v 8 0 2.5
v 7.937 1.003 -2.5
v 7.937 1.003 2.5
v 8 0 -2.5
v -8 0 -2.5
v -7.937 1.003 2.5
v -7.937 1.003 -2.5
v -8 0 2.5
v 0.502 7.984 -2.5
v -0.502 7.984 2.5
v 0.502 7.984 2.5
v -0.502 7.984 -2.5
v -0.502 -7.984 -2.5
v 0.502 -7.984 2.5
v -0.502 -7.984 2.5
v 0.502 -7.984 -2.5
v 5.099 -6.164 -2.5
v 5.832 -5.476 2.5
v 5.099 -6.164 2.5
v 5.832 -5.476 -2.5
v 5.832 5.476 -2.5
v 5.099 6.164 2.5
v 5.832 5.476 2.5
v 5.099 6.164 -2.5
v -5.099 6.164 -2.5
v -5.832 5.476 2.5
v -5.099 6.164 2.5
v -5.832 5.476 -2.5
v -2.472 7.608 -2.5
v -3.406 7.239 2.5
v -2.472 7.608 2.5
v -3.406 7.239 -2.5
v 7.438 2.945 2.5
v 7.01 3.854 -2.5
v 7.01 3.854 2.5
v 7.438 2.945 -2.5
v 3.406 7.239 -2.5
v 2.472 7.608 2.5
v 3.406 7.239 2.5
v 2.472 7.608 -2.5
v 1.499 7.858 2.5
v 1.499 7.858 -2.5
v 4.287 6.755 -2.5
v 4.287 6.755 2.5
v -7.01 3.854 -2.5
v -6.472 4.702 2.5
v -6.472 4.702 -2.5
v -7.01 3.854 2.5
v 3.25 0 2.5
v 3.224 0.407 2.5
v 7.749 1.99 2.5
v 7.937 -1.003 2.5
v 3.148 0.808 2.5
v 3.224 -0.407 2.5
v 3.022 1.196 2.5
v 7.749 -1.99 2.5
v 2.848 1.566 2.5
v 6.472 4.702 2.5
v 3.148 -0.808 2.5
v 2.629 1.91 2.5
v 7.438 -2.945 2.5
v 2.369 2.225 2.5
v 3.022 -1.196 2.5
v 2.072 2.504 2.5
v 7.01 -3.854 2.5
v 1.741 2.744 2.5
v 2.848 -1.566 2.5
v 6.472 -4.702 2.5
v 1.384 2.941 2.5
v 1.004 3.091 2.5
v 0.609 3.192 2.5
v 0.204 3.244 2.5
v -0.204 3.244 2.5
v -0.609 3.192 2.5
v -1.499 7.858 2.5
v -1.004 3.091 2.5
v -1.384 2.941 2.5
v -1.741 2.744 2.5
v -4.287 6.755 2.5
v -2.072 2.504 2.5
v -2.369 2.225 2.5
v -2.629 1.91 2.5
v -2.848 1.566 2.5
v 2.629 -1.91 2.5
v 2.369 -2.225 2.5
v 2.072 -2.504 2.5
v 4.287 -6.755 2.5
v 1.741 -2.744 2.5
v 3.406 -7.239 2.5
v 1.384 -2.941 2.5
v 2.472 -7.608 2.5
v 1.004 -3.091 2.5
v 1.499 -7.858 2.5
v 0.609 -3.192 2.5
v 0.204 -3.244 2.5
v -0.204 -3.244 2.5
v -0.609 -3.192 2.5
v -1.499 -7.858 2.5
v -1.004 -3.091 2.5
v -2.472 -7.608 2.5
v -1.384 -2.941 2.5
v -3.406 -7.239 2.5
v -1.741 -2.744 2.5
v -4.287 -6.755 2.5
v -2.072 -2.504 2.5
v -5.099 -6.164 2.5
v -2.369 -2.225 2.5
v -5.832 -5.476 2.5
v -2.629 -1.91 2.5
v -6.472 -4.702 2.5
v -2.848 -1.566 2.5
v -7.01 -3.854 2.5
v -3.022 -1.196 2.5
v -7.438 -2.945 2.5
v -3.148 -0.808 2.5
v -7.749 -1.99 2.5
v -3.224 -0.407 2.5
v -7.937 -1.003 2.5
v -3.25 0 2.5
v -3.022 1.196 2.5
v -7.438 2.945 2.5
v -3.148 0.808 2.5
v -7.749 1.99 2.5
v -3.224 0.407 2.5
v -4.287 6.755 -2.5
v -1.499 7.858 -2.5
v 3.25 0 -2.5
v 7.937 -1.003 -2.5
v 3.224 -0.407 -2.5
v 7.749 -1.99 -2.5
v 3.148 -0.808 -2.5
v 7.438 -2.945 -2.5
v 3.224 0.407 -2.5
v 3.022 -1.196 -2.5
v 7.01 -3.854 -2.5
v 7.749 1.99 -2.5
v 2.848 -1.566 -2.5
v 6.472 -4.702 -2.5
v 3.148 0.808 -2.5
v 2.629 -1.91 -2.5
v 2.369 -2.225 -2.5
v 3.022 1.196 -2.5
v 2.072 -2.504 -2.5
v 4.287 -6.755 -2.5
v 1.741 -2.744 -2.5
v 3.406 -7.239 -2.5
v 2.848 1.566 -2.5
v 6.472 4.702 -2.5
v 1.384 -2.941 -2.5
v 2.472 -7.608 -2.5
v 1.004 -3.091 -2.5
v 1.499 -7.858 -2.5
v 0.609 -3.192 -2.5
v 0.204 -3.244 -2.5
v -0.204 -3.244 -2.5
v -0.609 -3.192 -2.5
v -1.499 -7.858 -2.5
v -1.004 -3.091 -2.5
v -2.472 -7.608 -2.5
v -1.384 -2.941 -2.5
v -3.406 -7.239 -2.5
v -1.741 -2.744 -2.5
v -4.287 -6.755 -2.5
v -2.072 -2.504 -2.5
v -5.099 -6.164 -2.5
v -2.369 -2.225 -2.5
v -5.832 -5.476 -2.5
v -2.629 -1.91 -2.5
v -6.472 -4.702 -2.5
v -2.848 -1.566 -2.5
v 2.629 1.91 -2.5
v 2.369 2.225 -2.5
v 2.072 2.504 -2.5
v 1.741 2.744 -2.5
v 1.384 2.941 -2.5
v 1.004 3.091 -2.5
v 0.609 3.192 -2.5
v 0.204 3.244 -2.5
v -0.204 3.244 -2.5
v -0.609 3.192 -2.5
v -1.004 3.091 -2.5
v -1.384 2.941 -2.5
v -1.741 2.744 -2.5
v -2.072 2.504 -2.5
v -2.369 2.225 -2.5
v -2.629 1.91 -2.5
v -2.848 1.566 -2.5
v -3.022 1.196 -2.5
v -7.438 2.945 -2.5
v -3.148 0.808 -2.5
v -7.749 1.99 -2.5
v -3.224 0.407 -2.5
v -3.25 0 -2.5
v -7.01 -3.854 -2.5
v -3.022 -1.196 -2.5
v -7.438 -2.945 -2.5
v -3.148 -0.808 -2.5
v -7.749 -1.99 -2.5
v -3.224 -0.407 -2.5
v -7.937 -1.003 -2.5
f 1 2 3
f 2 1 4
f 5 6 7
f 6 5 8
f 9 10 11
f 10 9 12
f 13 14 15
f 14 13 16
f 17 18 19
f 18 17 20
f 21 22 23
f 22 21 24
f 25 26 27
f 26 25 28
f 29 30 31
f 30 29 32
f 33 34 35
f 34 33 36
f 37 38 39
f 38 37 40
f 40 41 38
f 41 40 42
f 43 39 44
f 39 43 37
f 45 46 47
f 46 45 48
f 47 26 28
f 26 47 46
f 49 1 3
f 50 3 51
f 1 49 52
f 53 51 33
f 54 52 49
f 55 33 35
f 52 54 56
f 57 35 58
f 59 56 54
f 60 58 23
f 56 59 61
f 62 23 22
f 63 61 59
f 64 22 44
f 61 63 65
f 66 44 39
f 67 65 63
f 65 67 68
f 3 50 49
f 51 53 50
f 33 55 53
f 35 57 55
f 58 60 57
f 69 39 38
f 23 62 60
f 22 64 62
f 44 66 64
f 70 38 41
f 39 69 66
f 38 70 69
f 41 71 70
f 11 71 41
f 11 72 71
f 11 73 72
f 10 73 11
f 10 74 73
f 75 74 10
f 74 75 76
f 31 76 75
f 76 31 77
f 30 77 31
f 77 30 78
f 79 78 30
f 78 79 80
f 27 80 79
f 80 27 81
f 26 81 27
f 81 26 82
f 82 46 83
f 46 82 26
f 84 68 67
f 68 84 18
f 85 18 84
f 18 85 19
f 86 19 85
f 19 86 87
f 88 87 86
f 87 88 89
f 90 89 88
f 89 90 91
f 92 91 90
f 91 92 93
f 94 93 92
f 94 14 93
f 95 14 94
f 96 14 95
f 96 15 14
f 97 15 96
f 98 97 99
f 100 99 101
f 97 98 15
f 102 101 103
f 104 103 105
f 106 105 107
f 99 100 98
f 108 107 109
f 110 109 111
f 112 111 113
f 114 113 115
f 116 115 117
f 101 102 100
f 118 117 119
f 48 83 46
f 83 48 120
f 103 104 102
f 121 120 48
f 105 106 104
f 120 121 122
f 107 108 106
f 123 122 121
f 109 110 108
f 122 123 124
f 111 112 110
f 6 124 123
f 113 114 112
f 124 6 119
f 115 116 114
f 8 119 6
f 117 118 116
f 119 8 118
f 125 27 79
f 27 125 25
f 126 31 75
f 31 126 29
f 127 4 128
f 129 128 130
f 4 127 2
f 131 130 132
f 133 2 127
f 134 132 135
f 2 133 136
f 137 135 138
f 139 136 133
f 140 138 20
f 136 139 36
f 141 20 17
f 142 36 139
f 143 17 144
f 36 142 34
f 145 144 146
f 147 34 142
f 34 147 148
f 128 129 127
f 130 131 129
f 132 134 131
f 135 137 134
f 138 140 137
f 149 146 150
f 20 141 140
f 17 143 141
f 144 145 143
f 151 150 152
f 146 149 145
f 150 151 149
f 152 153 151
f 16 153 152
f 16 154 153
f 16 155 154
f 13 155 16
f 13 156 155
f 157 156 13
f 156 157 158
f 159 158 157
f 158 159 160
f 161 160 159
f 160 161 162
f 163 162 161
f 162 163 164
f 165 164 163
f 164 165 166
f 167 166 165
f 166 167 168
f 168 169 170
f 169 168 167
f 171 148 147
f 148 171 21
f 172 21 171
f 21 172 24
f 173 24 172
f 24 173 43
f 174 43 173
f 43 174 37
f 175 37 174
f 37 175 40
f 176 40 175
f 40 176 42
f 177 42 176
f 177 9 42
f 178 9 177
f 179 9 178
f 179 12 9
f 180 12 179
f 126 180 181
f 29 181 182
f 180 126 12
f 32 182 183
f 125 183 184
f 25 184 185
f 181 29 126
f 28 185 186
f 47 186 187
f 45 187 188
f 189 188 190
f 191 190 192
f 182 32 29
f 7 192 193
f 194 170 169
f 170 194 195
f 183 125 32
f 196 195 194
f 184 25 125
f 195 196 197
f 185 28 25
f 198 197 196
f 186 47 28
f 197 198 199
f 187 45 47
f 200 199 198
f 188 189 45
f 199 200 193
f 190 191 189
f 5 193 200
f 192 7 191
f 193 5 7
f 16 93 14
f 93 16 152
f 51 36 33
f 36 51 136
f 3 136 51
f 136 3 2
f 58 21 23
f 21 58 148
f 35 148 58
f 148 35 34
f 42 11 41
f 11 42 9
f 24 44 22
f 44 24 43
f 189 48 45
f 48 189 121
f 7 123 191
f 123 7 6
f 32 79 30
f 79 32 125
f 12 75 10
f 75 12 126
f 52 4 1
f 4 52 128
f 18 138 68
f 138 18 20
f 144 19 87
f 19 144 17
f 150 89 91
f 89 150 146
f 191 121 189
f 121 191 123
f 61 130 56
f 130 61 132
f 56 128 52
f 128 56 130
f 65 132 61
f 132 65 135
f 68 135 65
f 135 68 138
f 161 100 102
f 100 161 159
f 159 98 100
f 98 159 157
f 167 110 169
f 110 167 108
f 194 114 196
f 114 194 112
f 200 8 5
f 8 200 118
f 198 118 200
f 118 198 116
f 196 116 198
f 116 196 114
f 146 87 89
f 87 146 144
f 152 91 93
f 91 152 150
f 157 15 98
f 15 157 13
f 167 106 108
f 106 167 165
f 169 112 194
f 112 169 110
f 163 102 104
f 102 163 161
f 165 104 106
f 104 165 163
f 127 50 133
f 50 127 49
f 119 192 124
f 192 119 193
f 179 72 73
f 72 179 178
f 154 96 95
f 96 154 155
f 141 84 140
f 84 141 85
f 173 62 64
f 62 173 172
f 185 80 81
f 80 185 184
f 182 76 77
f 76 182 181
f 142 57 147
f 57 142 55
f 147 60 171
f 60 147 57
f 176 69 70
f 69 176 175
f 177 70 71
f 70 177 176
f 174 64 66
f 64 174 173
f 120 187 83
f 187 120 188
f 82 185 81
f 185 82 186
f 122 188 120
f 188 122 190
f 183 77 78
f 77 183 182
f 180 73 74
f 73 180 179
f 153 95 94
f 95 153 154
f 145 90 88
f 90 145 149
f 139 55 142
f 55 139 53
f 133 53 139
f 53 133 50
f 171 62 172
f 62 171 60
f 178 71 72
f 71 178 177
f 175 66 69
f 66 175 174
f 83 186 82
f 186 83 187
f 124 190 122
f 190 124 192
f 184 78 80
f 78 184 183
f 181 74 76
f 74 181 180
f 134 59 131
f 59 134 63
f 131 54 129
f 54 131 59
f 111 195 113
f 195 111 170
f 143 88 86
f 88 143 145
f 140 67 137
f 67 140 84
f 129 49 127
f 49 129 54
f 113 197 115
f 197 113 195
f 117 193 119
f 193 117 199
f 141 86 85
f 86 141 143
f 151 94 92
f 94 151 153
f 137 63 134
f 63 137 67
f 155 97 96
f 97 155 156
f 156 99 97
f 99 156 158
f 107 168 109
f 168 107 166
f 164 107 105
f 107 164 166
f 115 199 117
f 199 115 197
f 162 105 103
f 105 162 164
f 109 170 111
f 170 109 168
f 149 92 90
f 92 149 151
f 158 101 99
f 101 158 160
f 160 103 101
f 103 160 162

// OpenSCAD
$fn = 50;


difference() {
	union() {
		translate(v = [0, 0, -2.5000000000]) {
			cylinder(h = 5, r = 8.0000000000);
		}
	}
	union() {
		translate(v = [0, 0, -100.0000000000]) {
			cylinder(h = 200, r = 3.2500000000);
		}
	}
}
